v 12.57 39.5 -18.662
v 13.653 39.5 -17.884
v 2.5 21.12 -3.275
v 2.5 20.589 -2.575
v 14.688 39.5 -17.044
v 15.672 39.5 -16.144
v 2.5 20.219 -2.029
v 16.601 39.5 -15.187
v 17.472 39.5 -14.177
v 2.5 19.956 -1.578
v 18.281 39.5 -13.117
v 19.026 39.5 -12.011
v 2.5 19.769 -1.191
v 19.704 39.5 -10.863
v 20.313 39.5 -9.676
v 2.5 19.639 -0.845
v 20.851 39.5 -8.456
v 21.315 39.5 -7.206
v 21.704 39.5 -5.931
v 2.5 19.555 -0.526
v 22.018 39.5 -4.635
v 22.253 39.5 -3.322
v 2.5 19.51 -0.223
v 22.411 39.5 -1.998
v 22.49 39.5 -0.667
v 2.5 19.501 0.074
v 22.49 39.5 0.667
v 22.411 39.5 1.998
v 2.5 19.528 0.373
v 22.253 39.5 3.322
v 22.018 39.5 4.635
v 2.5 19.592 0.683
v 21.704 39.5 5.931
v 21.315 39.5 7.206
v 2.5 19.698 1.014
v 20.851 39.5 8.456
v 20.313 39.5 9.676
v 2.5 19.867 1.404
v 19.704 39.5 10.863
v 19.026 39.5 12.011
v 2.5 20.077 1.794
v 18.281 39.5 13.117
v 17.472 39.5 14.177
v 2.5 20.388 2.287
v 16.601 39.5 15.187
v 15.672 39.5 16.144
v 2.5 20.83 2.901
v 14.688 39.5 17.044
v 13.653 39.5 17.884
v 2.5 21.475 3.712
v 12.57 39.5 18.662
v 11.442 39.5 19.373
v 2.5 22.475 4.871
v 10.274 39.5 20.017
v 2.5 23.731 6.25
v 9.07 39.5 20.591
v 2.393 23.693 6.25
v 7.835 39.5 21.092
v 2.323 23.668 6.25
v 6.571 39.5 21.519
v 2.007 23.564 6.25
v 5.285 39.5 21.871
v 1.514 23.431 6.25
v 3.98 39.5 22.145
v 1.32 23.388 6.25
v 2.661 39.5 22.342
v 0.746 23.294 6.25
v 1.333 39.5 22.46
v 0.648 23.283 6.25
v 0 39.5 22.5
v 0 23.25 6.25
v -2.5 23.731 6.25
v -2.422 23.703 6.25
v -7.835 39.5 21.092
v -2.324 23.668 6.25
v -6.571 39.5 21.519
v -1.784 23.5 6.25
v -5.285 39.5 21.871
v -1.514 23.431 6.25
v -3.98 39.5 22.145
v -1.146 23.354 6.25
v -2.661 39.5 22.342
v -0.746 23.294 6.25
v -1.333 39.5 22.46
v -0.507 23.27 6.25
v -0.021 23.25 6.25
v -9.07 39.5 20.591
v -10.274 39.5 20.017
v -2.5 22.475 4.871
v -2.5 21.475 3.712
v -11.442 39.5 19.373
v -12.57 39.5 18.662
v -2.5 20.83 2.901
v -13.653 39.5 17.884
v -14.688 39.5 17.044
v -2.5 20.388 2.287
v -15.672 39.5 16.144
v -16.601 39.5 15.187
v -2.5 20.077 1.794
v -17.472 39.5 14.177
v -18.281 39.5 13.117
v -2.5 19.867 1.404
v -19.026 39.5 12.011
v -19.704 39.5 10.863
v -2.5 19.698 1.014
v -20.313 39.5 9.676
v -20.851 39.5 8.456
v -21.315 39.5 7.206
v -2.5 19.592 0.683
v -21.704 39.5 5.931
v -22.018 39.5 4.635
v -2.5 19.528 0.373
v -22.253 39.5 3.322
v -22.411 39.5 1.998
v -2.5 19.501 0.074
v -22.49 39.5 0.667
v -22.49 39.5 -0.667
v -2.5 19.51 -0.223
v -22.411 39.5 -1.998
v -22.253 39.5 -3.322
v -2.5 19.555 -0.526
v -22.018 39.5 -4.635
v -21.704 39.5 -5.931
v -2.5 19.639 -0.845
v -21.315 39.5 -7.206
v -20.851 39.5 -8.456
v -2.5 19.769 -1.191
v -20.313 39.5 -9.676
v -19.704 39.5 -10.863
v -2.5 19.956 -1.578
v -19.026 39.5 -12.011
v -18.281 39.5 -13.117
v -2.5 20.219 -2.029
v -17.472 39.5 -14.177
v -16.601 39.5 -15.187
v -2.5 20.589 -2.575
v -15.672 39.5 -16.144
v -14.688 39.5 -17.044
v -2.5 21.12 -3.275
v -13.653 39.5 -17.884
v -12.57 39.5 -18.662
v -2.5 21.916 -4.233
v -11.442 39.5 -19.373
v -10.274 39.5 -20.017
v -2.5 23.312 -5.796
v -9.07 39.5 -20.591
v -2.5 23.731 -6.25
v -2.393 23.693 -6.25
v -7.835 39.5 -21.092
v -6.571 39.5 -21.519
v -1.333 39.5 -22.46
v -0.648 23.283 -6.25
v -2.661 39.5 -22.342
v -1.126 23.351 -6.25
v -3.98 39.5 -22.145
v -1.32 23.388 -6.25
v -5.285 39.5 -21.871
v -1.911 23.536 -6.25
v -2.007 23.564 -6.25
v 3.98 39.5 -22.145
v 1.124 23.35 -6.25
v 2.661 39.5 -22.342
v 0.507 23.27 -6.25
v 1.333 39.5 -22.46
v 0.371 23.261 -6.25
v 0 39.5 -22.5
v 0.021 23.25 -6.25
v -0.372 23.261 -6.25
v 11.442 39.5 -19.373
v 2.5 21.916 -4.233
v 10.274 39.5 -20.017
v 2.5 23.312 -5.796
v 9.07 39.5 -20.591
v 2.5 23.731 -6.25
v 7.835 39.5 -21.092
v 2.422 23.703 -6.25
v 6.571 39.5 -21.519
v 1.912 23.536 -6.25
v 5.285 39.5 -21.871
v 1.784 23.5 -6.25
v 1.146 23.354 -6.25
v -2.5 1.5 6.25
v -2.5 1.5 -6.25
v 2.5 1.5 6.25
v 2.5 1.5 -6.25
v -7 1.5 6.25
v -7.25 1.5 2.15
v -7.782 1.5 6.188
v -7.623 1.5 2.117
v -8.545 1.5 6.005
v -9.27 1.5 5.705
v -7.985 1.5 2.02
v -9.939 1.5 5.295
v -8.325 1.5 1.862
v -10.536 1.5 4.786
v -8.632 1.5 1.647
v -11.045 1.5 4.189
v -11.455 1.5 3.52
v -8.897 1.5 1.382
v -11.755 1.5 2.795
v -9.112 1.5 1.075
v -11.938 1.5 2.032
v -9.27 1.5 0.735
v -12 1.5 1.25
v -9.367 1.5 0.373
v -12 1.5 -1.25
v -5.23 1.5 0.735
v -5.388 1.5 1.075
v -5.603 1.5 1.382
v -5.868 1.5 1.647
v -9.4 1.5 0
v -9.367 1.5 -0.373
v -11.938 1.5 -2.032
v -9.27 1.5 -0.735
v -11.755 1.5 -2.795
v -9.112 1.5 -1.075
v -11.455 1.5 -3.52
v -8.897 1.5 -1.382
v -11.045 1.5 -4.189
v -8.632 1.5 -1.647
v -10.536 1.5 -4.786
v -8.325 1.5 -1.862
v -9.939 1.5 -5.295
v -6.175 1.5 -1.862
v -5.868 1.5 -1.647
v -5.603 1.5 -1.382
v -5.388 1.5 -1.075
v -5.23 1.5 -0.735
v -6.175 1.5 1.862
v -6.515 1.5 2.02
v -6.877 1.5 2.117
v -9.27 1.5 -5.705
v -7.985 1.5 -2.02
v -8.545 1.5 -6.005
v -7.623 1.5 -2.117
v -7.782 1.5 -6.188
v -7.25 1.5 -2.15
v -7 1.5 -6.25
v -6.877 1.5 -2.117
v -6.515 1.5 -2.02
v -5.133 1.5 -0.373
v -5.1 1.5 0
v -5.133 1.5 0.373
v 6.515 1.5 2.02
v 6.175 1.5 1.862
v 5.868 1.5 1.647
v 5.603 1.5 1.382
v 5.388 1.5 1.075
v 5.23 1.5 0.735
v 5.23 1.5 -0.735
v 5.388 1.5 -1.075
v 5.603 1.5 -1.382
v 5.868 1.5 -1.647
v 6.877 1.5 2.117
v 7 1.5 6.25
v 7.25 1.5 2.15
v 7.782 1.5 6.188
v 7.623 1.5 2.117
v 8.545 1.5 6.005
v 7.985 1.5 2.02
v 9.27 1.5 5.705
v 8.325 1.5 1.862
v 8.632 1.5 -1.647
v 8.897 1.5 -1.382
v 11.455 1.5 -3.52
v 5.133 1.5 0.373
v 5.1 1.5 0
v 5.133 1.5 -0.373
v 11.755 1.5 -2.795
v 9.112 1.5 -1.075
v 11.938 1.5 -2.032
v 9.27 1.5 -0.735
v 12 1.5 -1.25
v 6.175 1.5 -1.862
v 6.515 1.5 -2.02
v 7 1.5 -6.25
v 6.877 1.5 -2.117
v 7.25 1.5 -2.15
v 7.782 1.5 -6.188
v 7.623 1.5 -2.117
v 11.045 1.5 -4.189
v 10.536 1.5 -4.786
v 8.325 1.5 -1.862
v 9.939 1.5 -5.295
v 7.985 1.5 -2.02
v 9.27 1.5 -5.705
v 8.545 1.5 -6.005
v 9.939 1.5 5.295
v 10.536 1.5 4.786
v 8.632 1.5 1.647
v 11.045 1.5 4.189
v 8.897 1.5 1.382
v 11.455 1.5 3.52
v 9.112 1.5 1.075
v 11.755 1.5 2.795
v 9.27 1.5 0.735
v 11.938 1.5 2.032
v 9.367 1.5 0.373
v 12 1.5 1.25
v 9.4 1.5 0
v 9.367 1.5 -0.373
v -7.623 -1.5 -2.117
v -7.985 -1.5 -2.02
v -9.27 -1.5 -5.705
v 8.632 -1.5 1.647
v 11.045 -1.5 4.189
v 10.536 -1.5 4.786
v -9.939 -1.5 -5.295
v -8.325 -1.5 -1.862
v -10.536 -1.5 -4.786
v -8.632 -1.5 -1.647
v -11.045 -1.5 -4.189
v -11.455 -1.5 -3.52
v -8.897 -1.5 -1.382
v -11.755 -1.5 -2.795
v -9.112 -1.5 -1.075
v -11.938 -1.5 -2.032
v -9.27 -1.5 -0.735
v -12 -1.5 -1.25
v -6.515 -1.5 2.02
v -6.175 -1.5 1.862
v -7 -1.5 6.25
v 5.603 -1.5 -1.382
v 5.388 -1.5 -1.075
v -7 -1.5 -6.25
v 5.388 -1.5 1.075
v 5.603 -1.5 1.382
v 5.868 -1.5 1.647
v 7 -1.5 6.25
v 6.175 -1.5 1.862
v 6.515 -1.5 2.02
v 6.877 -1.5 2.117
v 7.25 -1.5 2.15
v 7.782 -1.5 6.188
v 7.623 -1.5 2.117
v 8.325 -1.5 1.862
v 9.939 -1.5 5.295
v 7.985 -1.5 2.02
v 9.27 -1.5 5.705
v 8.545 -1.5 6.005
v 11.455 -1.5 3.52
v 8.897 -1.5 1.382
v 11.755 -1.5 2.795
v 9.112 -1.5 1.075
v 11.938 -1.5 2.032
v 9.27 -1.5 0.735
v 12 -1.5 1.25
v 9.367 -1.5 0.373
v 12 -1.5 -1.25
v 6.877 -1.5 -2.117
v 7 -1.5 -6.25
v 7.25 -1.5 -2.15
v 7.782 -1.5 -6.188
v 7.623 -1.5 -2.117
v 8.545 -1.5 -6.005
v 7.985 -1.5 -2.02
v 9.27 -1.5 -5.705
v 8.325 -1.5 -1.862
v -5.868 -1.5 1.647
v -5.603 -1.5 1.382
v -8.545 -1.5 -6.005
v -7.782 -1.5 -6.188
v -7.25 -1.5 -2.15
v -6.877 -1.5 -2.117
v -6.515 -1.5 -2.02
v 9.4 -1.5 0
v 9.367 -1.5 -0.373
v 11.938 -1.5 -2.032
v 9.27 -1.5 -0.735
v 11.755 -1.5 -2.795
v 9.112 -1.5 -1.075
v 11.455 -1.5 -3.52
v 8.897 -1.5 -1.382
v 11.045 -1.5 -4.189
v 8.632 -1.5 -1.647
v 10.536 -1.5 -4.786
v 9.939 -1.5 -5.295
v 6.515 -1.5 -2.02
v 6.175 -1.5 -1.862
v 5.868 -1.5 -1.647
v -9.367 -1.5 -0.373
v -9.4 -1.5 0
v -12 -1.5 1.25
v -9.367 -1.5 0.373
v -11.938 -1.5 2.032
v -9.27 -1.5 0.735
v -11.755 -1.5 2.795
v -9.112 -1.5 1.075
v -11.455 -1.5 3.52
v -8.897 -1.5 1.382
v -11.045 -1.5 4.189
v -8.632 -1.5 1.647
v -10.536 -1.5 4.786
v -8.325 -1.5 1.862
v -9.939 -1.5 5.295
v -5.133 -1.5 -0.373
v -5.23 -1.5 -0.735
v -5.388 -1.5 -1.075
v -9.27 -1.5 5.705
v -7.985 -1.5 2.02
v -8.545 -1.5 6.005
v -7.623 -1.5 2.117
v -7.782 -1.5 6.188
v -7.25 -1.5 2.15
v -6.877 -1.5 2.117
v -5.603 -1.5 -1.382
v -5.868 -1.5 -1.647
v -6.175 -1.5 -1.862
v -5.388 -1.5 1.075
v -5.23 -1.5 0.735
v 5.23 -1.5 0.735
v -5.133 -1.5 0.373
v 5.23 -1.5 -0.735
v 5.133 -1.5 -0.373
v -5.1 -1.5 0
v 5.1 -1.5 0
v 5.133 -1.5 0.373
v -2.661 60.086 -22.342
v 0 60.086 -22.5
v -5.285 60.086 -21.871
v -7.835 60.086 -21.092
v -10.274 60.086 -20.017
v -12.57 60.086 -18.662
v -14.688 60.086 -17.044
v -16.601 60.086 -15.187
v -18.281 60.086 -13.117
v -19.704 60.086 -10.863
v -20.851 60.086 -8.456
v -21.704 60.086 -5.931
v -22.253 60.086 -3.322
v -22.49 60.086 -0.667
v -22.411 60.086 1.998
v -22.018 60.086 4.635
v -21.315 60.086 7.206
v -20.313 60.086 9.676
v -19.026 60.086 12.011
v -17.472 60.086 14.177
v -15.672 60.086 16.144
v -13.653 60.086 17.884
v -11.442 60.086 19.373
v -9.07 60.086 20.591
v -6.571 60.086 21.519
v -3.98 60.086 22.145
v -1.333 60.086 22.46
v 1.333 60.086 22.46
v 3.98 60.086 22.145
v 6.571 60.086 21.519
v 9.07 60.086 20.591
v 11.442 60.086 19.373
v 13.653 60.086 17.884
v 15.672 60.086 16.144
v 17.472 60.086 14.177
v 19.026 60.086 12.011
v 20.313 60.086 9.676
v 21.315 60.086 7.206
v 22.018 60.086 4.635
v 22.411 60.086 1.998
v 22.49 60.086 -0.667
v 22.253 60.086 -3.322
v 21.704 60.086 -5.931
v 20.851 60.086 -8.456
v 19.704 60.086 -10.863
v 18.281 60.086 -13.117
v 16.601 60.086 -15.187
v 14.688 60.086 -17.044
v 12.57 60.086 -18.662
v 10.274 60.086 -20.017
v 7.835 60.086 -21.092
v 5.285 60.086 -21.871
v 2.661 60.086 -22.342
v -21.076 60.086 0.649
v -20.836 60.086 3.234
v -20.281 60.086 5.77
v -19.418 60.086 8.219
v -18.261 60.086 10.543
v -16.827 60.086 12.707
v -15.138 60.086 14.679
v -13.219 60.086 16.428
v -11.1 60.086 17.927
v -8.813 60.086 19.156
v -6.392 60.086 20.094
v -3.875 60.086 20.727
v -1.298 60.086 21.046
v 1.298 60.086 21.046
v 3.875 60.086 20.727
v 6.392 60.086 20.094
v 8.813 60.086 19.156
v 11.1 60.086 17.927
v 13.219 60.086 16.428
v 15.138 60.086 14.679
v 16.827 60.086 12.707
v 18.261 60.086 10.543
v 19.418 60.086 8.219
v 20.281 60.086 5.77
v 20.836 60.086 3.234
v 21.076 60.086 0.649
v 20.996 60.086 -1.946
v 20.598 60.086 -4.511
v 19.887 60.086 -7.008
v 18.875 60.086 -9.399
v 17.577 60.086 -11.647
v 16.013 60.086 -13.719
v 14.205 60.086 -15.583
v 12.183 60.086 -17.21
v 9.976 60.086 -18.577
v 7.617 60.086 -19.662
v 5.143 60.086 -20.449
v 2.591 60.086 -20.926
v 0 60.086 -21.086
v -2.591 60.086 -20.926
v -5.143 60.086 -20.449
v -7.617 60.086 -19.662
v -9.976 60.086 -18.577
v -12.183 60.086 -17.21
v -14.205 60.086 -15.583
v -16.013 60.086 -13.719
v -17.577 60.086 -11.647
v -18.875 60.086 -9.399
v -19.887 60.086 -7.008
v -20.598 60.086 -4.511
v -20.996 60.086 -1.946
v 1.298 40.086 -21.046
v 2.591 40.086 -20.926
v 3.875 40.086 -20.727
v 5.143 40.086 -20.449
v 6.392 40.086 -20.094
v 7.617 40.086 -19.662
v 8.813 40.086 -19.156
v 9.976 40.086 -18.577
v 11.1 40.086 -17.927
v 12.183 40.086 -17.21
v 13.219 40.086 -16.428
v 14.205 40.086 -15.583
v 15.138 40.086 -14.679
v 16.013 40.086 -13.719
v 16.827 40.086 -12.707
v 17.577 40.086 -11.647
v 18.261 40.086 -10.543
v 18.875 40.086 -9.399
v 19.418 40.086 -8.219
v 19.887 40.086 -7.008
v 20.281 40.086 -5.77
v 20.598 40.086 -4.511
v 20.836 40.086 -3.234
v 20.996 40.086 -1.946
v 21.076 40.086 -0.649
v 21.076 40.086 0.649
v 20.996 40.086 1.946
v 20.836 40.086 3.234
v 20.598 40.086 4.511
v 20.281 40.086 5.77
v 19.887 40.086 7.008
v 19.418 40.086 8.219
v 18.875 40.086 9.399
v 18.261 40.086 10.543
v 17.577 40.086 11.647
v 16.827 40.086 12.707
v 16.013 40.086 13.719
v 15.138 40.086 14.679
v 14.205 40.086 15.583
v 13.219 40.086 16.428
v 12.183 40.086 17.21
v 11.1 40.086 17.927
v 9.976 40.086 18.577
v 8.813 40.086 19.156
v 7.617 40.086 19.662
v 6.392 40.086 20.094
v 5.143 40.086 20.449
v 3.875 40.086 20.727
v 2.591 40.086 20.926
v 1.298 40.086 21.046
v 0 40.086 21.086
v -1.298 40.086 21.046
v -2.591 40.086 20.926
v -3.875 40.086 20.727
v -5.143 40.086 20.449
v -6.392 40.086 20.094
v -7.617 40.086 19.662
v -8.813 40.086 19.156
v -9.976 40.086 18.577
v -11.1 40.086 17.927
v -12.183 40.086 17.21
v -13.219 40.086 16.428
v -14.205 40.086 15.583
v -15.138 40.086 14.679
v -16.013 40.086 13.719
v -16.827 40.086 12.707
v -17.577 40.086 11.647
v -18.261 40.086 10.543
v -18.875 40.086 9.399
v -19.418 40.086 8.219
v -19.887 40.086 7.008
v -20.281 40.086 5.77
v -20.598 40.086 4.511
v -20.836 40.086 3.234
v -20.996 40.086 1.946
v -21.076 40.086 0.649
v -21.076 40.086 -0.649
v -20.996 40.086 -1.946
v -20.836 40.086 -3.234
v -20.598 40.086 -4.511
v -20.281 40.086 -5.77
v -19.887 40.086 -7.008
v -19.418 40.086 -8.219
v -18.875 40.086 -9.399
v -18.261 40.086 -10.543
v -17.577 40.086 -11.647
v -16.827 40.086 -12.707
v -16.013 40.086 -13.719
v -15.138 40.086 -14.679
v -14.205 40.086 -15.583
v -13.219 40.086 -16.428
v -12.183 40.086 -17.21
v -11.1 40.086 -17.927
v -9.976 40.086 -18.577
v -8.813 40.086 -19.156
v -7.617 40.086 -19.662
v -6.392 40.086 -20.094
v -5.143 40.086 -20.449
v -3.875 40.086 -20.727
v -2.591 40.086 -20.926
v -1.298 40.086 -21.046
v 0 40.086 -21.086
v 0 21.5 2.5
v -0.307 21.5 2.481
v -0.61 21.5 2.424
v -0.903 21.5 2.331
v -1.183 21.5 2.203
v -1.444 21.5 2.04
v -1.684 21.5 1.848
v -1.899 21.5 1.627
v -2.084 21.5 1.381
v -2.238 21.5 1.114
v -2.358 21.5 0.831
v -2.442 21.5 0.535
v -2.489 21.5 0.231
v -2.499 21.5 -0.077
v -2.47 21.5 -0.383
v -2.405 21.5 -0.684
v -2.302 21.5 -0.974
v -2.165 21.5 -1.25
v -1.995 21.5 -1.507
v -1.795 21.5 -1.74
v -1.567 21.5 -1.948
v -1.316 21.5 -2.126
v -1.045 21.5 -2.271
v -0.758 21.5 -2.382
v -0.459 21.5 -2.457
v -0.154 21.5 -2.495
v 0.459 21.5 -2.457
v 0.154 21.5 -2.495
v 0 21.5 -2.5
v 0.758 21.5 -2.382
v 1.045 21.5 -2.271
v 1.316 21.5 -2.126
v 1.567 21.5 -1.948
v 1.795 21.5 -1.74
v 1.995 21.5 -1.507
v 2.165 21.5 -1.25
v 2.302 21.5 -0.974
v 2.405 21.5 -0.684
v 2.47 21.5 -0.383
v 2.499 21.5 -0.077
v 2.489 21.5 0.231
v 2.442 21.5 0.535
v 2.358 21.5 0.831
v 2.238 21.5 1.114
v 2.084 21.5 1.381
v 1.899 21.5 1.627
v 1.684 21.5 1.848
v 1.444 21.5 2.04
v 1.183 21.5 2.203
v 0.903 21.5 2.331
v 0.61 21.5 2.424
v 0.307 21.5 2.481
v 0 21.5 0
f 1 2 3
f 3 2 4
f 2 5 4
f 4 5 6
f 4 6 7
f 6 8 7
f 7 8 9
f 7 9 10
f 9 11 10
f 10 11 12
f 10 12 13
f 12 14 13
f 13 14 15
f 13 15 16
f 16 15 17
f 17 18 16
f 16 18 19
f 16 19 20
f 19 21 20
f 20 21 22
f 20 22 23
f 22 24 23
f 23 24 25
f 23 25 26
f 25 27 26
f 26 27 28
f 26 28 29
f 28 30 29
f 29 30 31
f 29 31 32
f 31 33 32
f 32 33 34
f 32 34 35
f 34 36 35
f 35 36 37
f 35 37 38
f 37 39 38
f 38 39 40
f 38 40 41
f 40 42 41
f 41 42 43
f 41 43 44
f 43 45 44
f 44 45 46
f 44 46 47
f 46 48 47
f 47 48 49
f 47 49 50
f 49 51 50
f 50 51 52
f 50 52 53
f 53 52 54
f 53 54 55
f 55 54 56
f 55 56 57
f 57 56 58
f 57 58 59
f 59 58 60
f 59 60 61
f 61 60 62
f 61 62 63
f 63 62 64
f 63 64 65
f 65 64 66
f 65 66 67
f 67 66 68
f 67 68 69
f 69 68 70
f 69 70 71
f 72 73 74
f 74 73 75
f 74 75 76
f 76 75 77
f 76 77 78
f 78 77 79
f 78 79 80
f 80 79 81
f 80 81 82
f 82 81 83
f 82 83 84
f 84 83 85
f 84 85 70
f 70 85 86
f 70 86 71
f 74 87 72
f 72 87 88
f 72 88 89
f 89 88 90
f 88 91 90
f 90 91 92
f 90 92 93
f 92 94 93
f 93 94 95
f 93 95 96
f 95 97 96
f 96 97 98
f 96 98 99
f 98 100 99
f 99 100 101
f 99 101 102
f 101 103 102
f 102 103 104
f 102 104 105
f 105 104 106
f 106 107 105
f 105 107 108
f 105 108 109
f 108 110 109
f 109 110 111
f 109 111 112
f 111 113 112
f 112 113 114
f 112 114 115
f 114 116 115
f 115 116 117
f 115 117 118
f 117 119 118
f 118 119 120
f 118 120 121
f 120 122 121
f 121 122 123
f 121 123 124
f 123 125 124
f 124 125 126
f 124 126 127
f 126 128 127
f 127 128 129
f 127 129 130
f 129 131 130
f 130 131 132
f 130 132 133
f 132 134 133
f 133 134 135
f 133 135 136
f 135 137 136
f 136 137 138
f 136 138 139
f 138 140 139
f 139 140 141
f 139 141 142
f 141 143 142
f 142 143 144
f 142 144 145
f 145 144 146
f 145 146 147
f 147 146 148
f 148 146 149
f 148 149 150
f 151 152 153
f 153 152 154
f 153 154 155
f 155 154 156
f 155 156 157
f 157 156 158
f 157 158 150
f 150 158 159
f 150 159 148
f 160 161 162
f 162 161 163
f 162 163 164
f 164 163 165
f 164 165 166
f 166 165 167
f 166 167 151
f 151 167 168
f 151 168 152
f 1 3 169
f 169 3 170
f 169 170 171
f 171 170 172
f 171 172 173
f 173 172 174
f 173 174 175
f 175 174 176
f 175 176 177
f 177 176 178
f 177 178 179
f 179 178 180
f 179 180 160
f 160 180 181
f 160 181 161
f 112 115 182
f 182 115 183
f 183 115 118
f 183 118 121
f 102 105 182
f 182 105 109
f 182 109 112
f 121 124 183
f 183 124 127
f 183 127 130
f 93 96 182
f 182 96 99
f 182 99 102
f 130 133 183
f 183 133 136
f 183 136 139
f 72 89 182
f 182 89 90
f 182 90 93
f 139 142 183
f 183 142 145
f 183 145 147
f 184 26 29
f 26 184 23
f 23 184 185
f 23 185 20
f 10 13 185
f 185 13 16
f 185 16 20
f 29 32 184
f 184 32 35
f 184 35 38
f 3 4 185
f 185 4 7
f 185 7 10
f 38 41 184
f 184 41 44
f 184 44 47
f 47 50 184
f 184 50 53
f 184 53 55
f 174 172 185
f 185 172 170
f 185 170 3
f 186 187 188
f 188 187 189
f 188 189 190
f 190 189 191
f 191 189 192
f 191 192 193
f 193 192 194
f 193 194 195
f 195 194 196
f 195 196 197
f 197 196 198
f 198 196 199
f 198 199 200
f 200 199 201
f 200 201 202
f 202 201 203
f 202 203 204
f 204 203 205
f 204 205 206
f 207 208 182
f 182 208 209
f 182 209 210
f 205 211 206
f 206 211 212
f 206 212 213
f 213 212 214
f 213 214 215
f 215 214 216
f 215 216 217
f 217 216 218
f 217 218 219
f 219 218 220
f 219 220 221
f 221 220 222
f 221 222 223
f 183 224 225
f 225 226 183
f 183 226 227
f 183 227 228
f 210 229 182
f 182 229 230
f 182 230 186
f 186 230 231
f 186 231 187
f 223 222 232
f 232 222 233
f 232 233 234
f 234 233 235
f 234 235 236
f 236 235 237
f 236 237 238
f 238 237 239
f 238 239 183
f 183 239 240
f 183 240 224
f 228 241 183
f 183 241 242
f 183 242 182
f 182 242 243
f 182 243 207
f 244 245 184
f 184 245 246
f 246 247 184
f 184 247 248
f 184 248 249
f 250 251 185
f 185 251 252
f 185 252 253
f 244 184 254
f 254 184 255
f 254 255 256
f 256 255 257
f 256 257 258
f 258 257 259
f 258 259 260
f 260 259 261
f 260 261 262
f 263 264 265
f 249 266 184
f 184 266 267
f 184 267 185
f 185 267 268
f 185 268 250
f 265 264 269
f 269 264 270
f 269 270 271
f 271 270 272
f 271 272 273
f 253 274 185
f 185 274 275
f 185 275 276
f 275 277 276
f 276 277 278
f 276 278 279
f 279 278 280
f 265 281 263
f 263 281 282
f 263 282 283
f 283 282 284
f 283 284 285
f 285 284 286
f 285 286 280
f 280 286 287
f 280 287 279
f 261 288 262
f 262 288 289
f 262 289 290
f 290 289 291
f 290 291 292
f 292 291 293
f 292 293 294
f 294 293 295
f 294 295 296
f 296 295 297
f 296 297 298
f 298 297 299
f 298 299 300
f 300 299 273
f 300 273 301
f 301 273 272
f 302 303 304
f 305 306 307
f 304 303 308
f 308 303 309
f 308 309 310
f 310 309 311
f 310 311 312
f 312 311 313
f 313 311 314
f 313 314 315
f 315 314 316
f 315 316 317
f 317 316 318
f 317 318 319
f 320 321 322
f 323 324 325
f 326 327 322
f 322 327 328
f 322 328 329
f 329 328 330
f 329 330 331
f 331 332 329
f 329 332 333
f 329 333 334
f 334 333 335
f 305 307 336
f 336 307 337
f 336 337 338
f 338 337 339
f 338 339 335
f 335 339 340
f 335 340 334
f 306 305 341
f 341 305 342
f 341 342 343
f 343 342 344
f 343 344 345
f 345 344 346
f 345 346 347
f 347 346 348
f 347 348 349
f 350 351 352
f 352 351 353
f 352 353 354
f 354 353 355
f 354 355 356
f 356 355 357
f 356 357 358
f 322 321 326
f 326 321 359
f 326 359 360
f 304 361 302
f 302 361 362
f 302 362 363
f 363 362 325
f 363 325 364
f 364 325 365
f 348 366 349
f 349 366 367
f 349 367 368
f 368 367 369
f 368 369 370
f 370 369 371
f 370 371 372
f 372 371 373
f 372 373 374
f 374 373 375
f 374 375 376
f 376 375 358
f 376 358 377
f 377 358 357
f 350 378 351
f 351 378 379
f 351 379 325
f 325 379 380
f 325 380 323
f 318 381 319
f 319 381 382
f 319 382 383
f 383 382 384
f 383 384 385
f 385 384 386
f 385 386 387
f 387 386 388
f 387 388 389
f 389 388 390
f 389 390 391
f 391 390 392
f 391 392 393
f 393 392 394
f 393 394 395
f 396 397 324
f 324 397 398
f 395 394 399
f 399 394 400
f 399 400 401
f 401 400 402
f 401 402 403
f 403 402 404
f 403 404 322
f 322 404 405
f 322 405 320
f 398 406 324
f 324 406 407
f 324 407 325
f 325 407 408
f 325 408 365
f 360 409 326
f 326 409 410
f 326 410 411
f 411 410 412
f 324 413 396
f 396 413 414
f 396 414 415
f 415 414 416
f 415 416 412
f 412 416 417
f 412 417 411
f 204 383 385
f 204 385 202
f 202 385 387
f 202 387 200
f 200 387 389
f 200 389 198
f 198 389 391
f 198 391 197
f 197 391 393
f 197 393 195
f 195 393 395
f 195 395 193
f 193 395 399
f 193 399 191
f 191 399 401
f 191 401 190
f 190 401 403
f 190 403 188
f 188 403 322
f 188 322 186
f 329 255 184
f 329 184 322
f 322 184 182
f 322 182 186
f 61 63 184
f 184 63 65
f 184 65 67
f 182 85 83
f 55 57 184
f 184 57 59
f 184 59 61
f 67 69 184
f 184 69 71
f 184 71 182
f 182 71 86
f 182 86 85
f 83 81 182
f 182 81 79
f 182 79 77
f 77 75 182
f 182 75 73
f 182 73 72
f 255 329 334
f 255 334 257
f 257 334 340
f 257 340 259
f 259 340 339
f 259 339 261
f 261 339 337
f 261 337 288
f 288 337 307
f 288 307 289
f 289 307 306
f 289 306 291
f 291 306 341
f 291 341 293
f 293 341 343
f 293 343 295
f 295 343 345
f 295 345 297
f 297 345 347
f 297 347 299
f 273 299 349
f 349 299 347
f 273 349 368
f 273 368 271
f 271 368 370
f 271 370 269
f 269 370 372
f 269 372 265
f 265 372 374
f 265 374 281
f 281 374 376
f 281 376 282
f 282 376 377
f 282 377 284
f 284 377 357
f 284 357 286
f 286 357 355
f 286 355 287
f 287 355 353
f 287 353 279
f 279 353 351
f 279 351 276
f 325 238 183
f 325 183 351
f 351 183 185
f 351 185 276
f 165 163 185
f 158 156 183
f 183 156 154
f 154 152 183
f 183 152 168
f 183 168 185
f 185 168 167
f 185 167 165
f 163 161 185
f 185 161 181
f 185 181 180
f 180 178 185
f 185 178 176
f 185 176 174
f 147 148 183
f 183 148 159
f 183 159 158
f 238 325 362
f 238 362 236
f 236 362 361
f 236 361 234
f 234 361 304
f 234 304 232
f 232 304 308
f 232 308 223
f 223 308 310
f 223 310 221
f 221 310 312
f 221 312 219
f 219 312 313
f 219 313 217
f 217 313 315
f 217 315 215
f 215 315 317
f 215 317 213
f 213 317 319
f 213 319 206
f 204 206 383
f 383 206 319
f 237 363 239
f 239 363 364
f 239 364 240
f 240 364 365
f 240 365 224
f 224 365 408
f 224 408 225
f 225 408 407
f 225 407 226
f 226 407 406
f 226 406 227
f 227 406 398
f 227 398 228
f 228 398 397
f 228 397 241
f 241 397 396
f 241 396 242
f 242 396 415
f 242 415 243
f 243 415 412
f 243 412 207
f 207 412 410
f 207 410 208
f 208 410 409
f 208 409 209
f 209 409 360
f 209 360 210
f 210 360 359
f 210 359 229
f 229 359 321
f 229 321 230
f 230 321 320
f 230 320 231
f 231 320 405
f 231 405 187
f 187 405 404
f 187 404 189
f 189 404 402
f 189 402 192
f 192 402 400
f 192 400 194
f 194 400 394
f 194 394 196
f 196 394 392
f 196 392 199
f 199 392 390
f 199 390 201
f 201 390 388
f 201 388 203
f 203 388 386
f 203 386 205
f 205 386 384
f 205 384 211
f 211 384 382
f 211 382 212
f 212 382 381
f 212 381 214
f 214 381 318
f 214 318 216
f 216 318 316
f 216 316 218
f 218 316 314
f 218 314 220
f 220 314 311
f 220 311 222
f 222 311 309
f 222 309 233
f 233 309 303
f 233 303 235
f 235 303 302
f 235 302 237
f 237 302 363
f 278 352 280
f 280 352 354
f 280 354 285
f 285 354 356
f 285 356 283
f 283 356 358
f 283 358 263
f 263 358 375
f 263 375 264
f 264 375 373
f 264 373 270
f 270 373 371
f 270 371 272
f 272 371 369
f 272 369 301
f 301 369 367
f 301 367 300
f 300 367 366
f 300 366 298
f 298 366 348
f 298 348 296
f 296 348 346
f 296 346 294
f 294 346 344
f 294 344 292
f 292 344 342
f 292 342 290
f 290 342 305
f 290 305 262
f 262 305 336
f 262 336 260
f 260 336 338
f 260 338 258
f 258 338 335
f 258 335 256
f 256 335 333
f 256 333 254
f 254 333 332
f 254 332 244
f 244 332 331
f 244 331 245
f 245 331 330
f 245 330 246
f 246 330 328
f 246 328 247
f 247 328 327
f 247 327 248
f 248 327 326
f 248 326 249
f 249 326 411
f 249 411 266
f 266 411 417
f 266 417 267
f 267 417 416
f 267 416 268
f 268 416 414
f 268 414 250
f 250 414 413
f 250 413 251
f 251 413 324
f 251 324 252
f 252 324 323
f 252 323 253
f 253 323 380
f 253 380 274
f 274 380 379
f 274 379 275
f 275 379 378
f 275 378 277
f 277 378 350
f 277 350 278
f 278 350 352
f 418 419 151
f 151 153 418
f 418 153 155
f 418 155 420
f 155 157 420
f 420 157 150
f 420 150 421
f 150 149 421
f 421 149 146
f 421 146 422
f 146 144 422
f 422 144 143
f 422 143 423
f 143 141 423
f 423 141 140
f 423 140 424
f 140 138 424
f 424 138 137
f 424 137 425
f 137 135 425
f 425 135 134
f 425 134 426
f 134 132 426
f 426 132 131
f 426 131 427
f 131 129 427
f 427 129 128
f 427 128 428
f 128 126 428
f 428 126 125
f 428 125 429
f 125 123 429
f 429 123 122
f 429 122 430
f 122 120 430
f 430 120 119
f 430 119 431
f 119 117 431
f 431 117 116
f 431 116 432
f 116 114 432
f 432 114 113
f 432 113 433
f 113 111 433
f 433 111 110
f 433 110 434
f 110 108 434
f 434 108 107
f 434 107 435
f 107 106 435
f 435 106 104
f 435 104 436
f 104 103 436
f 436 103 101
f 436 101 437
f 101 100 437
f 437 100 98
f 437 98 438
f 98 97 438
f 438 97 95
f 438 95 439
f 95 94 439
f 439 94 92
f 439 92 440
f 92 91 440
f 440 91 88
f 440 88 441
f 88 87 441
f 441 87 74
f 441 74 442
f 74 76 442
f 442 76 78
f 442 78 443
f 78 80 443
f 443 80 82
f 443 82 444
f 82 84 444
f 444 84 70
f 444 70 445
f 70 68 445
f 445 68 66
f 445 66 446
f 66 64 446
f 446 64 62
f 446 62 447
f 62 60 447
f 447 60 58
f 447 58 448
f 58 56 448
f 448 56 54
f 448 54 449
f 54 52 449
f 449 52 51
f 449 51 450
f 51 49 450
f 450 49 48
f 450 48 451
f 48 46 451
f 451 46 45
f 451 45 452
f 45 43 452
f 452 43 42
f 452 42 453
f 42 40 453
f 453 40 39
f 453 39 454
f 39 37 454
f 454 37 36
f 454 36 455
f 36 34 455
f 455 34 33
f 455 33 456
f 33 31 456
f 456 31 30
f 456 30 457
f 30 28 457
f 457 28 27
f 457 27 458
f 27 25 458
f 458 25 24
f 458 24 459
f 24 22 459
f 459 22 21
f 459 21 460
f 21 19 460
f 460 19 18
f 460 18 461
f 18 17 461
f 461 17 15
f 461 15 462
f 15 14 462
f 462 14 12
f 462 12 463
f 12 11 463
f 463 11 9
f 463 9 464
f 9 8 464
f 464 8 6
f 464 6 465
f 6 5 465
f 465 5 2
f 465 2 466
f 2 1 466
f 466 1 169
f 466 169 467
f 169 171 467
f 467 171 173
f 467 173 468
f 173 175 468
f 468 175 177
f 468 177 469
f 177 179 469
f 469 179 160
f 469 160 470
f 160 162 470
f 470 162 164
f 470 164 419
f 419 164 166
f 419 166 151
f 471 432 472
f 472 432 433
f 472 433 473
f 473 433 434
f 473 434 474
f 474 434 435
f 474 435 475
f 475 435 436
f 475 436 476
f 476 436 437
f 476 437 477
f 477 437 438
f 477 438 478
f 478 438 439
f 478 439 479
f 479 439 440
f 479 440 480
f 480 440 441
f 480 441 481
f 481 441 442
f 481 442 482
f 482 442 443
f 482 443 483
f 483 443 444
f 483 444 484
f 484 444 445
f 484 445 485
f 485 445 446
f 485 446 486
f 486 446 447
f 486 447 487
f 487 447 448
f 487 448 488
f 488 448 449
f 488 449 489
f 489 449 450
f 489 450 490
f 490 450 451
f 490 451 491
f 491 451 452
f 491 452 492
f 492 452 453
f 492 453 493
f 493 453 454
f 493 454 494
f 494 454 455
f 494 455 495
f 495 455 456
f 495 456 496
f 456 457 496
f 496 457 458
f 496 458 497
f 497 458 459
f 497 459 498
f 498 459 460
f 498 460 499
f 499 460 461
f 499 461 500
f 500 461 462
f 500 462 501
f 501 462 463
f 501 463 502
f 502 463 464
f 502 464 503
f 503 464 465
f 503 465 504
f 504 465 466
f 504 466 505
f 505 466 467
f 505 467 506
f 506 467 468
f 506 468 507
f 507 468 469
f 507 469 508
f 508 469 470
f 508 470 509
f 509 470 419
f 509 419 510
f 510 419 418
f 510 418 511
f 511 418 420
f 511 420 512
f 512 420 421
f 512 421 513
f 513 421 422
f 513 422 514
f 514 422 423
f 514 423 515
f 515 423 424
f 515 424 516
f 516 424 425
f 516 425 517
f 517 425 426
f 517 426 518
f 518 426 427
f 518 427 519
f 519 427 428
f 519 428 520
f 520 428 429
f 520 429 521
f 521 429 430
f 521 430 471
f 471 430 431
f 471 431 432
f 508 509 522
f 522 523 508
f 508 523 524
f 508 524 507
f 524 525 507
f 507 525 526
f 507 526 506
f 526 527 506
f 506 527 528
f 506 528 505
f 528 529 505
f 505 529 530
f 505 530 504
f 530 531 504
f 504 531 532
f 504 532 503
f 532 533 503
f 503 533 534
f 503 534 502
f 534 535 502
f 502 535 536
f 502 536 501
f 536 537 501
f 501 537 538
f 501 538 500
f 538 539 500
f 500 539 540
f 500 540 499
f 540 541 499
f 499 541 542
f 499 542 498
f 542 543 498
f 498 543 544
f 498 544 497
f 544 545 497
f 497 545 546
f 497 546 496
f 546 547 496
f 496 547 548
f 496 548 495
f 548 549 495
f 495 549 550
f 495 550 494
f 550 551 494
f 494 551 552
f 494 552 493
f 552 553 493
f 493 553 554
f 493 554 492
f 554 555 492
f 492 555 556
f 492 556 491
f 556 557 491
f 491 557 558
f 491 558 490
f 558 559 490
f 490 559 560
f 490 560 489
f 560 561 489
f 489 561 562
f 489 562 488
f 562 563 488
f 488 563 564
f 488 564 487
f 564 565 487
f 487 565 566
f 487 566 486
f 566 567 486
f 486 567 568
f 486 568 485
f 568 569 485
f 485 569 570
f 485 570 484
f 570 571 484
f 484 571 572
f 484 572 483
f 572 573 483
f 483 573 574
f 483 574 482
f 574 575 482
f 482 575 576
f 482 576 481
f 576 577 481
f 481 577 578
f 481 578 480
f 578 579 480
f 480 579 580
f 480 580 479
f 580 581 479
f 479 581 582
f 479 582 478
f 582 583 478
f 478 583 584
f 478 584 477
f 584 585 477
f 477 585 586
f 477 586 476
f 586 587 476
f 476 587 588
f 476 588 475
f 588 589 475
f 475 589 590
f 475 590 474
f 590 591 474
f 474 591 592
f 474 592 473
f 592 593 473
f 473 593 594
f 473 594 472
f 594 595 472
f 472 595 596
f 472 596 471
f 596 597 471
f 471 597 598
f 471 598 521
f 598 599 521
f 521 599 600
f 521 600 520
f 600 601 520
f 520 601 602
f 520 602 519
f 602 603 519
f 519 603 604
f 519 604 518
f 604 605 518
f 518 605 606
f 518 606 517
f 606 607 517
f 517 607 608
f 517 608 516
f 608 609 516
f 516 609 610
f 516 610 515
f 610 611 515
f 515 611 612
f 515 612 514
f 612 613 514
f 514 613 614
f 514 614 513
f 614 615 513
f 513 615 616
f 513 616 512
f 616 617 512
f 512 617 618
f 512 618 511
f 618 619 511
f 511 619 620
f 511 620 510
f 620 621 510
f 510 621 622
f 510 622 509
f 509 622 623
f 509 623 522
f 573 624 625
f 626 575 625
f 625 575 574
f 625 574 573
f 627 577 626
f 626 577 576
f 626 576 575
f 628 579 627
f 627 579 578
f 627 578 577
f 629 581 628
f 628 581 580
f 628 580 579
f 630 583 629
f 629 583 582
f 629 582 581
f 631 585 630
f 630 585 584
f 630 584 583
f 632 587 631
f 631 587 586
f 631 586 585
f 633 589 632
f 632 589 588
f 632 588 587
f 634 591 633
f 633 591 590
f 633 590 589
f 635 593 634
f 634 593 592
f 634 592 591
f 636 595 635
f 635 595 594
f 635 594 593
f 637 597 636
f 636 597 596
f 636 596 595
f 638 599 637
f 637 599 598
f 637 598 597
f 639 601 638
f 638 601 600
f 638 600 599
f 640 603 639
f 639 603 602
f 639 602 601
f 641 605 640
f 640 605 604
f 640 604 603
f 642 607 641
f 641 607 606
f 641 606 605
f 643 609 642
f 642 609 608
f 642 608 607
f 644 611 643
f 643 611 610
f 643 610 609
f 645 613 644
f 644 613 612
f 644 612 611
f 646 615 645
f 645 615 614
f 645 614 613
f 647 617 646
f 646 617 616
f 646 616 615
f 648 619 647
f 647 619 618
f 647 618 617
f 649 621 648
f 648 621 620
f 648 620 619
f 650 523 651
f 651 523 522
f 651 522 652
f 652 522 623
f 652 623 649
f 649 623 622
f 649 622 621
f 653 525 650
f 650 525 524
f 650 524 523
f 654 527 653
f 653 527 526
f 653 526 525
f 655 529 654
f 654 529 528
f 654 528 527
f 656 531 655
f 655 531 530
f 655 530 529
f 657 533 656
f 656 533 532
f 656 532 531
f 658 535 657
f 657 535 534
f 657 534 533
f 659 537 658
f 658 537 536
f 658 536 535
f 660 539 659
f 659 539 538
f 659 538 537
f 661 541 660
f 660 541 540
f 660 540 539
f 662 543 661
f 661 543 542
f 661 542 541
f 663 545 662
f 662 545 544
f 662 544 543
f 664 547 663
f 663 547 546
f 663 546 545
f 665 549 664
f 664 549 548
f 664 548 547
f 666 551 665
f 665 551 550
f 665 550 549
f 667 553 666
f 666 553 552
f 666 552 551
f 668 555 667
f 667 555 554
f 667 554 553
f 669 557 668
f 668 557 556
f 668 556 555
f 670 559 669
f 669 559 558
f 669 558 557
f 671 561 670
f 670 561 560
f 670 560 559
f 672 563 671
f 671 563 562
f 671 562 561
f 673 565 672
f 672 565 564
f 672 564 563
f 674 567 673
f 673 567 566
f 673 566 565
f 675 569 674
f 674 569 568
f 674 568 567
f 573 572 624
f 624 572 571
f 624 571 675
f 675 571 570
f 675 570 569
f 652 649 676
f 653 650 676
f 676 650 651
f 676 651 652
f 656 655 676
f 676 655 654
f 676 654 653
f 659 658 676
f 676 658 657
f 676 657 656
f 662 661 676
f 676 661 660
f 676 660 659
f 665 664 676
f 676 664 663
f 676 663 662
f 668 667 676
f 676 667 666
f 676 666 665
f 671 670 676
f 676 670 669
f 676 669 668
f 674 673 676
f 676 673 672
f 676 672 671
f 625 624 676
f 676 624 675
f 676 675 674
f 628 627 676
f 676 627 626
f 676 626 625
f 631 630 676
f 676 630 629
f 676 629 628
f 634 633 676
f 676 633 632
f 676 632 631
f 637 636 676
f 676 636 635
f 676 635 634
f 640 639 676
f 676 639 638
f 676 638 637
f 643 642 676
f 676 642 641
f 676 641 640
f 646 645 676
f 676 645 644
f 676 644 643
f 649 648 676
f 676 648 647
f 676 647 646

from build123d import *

# Parameters (mm, degrees)
SKETCH1_R           = 2.15
BOSS_EXTRUDE1_DEPTH = 1.5
SKETCH3_W           = 5
SKETCH3_H           = 20
BOSS_EXTRUDE3_DEPTH = 12.5
BOSS_EXTRUDE4_REACH = 52.014


with BuildPart() as part:
    # Sketch1 → Boss-Extrude1 (new, symmetric)
    with BuildSketch(Plane(origin=(0, 0, 0), x_dir=(1, 0, 0), z_dir=(0, 1, 0))):
        with BuildLine():
            Line((-7, -6.25), (7, -6.25))
            ThreePointArc((7, -6.25), (10.535533906, -4.785533906), (12, -1.25))
            Line((12, -1.25), (12, 1.25))
            ThreePointArc((12, 1.25), (10.535533906, 4.785533906), (7, 6.25))
            Line((7, 6.25), (-7, 6.25))
            ThreePointArc((-7, 6.25), (-10.535533906, 4.785533906), (-12, 1.25))
            Line((-12, 1.25), (-12, -1.25))
            ThreePointArc((-12, -1.25), (-10.535533906, -4.785533906), (-7, -6.25))
        make_face()
        with Locations(Location((-7.25, 0, 0), (0, 0, 270))):
            Circle(SKETCH1_R, mode=Mode.SUBTRACT)
        with Locations(Location((7.25, 0, 0), (0, 0, 270))):
            Circle(SKETCH1_R, mode=Mode.SUBTRACT)
    extrude(amount=BOSS_EXTRUDE1_DEPTH, both=True)

    # Sketch3 → Boss-Extrude3 (add)
    with BuildSketch(Plane.XY.offset(6.25)):
        with Locations((0, 11.5)):
            Rectangle(SKETCH3_W, SKETCH3_H)
    extrude(amount=-BOSS_EXTRUDE3_DEPTH)

    # Sketch4 → Revolve1 (revolve)
    with BuildSketch(Plane.XY, mode=Mode.PRIVATE) as revolve1_sk:
        Polygon((-2.5, 19.5), (-22.5, 39.5), (-22.5, 60.085786438), (-21.085786438, 60.085786438), (-21.085786438, 40.085786438), (-2.5, 21.5), (0, 21.5), (0, 19.5), align=None)
    revolve(revolve1_sk.sketch.rotate(Axis((0, 0, 0), (0, 1, 0)), 56.251031305), axis=Axis((0, 0, 0), (0, 1, 0)))

    # Sketch5 → Boss-Extrude4 (add, up to next)
    with BuildSketch(Plane(origin=(0, 21.5, 0), x_dir=(1, 0, 0), z_dir=(0, 1, 0)), mode=Mode.PRIVATE) as boss_extrude4_sk1:
        with BuildLine():
            Line((2.5, -6.25), (2.5, -3.741657387))
            ThreePointArc((2.5, -3.741657387), (0, -4.5), (-2.5, -3.741657387))
            Line((-2.5, -3.741657387), (-2.5, -6.25))
            Line((-2.5, -6.25), (2.5, -6.25))
        make_face()
    boss_extrude4_tool1 = extrude(boss_extrude4_sk1.sketch, amount=BOSS_EXTRUDE4_REACH, mode=Mode.PRIVATE) - part.part
    # Sketch5 → Boss-Extrude4 (add, up to next)
    with BuildSketch(Plane(origin=(0, 21.5, 0), x_dir=(1, 0, 0), z_dir=(0, 1, 0)), mode=Mode.PRIVATE) as boss_extrude4_sk2:
        with BuildLine():
            Line((-2.5, 6.25), (-2.5, 3.741657387))
            ThreePointArc((-2.5, 3.741657387), (0, 4.5), (2.5, 3.741657387))
            Line((2.5, 3.741657387), (2.5, 6.25))
            Line((2.5, 6.25), (-2.5, 6.25))
        make_face()
    boss_extrude4_tool2 = extrude(boss_extrude4_sk2.sketch, amount=BOSS_EXTRUDE4_REACH, mode=Mode.PRIVATE) - part.part
    add(boss_extrude4_tool1.solids().sort_by_distance((0, 21.5, 5.24074))[0])
    add(boss_extrude4_tool2.solids().sort_by_distance((0, 21.5, -5.24074))[0])


solid = part.part
